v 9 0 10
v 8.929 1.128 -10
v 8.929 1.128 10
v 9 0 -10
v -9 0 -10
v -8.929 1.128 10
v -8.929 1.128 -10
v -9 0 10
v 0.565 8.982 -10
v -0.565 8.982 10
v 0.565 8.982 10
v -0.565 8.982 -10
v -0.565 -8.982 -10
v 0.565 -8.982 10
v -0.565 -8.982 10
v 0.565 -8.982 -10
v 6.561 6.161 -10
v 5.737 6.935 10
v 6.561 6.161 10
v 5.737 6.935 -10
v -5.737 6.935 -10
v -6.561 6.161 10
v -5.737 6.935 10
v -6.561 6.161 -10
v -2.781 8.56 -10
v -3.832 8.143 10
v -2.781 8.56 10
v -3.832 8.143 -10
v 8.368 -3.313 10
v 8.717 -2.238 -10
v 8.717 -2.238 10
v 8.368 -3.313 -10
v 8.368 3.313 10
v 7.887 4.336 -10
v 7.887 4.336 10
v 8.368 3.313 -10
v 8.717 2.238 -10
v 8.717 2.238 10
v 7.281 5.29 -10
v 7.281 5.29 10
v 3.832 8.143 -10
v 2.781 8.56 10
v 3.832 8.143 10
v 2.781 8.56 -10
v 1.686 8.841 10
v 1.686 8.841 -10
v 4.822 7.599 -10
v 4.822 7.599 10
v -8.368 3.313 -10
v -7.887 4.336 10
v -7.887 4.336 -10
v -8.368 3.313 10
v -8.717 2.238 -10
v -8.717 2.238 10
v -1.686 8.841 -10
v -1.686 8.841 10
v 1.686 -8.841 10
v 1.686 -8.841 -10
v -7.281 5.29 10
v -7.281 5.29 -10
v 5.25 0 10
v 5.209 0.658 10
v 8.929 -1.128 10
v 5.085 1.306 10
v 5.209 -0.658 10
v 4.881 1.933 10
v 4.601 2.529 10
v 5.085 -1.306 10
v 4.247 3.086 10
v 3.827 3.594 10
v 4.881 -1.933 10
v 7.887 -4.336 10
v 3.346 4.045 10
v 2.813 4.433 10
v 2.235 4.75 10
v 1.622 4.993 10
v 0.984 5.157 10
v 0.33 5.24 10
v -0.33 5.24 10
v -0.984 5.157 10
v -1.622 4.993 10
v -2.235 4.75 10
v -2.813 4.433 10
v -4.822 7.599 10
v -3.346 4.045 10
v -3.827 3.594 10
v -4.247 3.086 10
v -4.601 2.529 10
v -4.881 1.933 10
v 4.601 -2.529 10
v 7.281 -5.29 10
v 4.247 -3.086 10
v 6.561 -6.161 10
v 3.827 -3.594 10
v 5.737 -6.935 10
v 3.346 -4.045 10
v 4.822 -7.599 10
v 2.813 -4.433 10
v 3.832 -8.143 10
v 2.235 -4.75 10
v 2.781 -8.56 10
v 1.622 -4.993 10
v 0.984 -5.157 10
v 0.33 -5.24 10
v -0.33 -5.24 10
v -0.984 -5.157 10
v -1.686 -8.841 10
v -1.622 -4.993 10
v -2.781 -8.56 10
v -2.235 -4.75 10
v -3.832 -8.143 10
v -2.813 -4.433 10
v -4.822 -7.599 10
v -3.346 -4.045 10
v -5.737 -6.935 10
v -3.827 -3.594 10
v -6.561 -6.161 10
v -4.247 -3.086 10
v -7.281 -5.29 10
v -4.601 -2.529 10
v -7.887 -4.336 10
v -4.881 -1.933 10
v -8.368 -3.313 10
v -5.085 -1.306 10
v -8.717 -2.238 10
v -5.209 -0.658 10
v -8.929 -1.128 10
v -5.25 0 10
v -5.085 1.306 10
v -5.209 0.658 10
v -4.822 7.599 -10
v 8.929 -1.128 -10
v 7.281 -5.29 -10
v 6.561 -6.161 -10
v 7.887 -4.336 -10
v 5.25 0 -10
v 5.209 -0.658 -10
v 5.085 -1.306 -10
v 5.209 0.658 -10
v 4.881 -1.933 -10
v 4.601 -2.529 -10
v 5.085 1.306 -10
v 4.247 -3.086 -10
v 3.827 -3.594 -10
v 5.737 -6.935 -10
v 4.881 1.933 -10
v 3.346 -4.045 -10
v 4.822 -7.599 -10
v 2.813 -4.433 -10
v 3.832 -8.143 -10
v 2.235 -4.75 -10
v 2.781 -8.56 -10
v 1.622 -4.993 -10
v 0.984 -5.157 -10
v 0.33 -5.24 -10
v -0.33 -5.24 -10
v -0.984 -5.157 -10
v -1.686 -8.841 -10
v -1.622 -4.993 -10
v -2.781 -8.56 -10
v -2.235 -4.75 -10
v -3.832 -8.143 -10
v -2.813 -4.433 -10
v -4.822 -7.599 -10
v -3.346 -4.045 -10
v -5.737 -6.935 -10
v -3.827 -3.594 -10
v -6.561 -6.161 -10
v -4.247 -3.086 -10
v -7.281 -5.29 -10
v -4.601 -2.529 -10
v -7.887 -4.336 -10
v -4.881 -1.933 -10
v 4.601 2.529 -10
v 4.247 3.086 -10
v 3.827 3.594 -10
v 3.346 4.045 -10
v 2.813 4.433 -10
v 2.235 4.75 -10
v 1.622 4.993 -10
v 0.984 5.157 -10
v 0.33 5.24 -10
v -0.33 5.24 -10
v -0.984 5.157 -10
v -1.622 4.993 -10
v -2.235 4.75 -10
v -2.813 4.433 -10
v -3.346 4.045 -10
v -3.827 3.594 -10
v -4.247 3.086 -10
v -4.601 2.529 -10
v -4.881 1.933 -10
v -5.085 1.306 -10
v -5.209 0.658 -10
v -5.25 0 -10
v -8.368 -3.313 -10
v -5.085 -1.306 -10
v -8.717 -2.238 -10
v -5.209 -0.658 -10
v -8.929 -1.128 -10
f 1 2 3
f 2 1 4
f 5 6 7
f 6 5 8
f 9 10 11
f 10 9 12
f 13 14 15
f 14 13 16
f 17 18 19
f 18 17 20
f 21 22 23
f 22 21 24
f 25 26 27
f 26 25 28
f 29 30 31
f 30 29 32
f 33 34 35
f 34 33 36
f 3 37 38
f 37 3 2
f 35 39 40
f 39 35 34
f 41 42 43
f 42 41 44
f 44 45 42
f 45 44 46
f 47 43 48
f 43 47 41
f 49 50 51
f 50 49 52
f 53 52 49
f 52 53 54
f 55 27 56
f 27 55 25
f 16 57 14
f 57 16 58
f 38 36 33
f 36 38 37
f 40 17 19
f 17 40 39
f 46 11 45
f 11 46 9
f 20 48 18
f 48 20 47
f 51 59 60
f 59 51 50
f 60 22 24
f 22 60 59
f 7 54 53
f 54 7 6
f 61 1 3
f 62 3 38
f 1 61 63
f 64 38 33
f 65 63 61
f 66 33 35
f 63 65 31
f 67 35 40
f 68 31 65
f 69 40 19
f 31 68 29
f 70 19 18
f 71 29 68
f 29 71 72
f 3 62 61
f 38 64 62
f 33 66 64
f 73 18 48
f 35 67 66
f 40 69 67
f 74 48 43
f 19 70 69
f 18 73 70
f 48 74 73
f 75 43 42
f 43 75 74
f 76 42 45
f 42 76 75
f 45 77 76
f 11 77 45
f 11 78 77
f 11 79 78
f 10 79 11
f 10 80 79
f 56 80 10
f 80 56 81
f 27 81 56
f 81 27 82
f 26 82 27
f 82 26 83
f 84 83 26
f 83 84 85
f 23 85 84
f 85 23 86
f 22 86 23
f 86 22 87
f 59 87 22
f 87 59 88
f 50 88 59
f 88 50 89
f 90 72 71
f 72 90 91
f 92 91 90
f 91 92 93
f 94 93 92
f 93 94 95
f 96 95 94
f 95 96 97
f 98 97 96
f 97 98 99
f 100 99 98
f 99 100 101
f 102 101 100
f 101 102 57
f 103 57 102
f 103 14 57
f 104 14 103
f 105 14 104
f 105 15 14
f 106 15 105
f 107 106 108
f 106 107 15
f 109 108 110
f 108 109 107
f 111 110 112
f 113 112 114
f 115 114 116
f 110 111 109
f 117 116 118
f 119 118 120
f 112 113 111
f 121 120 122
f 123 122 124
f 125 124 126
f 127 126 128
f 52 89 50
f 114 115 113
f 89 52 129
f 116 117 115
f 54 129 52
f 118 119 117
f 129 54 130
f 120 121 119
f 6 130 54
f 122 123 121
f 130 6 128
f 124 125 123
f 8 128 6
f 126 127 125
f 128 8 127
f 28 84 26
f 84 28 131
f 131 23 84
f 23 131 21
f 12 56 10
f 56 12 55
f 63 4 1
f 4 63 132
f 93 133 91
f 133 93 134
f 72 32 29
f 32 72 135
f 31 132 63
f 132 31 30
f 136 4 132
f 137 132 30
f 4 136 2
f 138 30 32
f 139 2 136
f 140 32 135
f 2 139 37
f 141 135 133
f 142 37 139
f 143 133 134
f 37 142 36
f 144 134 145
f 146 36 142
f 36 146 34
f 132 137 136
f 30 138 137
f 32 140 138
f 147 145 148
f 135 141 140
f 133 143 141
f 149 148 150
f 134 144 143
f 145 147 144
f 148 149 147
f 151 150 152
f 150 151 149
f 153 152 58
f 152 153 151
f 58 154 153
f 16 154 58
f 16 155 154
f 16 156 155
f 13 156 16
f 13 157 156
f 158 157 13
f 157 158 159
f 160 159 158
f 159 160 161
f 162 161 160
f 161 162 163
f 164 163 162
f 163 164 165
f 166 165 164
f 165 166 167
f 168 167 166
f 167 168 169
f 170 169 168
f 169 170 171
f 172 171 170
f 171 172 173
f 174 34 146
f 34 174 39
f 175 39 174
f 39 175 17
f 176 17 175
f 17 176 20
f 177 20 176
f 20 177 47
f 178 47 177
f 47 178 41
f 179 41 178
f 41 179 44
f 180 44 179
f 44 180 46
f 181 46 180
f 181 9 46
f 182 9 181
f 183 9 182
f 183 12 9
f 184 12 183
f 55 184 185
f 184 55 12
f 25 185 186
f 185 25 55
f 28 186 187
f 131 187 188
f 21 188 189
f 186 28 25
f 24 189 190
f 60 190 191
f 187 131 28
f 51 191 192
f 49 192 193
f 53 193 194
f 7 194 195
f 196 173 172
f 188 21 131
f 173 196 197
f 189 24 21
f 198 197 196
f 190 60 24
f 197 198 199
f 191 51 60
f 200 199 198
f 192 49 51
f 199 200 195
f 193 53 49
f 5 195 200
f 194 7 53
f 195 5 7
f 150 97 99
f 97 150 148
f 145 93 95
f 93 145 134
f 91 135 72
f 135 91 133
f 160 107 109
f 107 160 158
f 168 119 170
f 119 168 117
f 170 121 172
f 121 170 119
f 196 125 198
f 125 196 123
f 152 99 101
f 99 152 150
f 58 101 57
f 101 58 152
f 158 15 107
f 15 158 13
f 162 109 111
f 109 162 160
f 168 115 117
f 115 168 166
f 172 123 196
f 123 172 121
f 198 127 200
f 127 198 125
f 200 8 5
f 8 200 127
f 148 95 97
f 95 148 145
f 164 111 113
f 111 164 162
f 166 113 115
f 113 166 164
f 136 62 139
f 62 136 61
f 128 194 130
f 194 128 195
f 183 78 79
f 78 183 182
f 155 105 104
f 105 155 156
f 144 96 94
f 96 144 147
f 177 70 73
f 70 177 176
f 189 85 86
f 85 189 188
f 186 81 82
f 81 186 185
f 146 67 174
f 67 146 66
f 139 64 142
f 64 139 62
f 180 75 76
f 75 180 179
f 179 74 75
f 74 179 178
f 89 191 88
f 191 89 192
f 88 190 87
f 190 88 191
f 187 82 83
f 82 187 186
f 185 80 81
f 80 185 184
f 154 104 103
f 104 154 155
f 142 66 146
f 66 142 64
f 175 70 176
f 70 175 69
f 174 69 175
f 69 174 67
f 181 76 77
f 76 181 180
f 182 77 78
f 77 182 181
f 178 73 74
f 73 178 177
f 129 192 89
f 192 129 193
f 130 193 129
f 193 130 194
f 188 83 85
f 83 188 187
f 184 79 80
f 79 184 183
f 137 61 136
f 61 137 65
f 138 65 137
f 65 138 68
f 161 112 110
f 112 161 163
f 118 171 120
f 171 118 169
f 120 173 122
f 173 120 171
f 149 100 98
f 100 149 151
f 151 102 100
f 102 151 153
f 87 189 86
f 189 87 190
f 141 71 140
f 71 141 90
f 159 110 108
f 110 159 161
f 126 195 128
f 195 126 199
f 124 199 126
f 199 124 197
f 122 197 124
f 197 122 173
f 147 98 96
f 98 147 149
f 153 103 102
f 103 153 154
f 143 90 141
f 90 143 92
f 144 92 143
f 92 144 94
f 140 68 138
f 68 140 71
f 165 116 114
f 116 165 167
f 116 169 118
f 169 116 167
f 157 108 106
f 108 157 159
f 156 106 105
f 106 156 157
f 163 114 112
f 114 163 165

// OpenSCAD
$fn = 50;


difference() {
	union() {
		translate(v = [0, 0, -10.0000000000]) {
			cylinder(h = 20, r = 9.0000000000);
		}
	}
	union() {
		translate(v = [0, 0, -100.0000000000]) {
			cylinder(h = 200, r = 5.2500000000);
		}
	}
}
